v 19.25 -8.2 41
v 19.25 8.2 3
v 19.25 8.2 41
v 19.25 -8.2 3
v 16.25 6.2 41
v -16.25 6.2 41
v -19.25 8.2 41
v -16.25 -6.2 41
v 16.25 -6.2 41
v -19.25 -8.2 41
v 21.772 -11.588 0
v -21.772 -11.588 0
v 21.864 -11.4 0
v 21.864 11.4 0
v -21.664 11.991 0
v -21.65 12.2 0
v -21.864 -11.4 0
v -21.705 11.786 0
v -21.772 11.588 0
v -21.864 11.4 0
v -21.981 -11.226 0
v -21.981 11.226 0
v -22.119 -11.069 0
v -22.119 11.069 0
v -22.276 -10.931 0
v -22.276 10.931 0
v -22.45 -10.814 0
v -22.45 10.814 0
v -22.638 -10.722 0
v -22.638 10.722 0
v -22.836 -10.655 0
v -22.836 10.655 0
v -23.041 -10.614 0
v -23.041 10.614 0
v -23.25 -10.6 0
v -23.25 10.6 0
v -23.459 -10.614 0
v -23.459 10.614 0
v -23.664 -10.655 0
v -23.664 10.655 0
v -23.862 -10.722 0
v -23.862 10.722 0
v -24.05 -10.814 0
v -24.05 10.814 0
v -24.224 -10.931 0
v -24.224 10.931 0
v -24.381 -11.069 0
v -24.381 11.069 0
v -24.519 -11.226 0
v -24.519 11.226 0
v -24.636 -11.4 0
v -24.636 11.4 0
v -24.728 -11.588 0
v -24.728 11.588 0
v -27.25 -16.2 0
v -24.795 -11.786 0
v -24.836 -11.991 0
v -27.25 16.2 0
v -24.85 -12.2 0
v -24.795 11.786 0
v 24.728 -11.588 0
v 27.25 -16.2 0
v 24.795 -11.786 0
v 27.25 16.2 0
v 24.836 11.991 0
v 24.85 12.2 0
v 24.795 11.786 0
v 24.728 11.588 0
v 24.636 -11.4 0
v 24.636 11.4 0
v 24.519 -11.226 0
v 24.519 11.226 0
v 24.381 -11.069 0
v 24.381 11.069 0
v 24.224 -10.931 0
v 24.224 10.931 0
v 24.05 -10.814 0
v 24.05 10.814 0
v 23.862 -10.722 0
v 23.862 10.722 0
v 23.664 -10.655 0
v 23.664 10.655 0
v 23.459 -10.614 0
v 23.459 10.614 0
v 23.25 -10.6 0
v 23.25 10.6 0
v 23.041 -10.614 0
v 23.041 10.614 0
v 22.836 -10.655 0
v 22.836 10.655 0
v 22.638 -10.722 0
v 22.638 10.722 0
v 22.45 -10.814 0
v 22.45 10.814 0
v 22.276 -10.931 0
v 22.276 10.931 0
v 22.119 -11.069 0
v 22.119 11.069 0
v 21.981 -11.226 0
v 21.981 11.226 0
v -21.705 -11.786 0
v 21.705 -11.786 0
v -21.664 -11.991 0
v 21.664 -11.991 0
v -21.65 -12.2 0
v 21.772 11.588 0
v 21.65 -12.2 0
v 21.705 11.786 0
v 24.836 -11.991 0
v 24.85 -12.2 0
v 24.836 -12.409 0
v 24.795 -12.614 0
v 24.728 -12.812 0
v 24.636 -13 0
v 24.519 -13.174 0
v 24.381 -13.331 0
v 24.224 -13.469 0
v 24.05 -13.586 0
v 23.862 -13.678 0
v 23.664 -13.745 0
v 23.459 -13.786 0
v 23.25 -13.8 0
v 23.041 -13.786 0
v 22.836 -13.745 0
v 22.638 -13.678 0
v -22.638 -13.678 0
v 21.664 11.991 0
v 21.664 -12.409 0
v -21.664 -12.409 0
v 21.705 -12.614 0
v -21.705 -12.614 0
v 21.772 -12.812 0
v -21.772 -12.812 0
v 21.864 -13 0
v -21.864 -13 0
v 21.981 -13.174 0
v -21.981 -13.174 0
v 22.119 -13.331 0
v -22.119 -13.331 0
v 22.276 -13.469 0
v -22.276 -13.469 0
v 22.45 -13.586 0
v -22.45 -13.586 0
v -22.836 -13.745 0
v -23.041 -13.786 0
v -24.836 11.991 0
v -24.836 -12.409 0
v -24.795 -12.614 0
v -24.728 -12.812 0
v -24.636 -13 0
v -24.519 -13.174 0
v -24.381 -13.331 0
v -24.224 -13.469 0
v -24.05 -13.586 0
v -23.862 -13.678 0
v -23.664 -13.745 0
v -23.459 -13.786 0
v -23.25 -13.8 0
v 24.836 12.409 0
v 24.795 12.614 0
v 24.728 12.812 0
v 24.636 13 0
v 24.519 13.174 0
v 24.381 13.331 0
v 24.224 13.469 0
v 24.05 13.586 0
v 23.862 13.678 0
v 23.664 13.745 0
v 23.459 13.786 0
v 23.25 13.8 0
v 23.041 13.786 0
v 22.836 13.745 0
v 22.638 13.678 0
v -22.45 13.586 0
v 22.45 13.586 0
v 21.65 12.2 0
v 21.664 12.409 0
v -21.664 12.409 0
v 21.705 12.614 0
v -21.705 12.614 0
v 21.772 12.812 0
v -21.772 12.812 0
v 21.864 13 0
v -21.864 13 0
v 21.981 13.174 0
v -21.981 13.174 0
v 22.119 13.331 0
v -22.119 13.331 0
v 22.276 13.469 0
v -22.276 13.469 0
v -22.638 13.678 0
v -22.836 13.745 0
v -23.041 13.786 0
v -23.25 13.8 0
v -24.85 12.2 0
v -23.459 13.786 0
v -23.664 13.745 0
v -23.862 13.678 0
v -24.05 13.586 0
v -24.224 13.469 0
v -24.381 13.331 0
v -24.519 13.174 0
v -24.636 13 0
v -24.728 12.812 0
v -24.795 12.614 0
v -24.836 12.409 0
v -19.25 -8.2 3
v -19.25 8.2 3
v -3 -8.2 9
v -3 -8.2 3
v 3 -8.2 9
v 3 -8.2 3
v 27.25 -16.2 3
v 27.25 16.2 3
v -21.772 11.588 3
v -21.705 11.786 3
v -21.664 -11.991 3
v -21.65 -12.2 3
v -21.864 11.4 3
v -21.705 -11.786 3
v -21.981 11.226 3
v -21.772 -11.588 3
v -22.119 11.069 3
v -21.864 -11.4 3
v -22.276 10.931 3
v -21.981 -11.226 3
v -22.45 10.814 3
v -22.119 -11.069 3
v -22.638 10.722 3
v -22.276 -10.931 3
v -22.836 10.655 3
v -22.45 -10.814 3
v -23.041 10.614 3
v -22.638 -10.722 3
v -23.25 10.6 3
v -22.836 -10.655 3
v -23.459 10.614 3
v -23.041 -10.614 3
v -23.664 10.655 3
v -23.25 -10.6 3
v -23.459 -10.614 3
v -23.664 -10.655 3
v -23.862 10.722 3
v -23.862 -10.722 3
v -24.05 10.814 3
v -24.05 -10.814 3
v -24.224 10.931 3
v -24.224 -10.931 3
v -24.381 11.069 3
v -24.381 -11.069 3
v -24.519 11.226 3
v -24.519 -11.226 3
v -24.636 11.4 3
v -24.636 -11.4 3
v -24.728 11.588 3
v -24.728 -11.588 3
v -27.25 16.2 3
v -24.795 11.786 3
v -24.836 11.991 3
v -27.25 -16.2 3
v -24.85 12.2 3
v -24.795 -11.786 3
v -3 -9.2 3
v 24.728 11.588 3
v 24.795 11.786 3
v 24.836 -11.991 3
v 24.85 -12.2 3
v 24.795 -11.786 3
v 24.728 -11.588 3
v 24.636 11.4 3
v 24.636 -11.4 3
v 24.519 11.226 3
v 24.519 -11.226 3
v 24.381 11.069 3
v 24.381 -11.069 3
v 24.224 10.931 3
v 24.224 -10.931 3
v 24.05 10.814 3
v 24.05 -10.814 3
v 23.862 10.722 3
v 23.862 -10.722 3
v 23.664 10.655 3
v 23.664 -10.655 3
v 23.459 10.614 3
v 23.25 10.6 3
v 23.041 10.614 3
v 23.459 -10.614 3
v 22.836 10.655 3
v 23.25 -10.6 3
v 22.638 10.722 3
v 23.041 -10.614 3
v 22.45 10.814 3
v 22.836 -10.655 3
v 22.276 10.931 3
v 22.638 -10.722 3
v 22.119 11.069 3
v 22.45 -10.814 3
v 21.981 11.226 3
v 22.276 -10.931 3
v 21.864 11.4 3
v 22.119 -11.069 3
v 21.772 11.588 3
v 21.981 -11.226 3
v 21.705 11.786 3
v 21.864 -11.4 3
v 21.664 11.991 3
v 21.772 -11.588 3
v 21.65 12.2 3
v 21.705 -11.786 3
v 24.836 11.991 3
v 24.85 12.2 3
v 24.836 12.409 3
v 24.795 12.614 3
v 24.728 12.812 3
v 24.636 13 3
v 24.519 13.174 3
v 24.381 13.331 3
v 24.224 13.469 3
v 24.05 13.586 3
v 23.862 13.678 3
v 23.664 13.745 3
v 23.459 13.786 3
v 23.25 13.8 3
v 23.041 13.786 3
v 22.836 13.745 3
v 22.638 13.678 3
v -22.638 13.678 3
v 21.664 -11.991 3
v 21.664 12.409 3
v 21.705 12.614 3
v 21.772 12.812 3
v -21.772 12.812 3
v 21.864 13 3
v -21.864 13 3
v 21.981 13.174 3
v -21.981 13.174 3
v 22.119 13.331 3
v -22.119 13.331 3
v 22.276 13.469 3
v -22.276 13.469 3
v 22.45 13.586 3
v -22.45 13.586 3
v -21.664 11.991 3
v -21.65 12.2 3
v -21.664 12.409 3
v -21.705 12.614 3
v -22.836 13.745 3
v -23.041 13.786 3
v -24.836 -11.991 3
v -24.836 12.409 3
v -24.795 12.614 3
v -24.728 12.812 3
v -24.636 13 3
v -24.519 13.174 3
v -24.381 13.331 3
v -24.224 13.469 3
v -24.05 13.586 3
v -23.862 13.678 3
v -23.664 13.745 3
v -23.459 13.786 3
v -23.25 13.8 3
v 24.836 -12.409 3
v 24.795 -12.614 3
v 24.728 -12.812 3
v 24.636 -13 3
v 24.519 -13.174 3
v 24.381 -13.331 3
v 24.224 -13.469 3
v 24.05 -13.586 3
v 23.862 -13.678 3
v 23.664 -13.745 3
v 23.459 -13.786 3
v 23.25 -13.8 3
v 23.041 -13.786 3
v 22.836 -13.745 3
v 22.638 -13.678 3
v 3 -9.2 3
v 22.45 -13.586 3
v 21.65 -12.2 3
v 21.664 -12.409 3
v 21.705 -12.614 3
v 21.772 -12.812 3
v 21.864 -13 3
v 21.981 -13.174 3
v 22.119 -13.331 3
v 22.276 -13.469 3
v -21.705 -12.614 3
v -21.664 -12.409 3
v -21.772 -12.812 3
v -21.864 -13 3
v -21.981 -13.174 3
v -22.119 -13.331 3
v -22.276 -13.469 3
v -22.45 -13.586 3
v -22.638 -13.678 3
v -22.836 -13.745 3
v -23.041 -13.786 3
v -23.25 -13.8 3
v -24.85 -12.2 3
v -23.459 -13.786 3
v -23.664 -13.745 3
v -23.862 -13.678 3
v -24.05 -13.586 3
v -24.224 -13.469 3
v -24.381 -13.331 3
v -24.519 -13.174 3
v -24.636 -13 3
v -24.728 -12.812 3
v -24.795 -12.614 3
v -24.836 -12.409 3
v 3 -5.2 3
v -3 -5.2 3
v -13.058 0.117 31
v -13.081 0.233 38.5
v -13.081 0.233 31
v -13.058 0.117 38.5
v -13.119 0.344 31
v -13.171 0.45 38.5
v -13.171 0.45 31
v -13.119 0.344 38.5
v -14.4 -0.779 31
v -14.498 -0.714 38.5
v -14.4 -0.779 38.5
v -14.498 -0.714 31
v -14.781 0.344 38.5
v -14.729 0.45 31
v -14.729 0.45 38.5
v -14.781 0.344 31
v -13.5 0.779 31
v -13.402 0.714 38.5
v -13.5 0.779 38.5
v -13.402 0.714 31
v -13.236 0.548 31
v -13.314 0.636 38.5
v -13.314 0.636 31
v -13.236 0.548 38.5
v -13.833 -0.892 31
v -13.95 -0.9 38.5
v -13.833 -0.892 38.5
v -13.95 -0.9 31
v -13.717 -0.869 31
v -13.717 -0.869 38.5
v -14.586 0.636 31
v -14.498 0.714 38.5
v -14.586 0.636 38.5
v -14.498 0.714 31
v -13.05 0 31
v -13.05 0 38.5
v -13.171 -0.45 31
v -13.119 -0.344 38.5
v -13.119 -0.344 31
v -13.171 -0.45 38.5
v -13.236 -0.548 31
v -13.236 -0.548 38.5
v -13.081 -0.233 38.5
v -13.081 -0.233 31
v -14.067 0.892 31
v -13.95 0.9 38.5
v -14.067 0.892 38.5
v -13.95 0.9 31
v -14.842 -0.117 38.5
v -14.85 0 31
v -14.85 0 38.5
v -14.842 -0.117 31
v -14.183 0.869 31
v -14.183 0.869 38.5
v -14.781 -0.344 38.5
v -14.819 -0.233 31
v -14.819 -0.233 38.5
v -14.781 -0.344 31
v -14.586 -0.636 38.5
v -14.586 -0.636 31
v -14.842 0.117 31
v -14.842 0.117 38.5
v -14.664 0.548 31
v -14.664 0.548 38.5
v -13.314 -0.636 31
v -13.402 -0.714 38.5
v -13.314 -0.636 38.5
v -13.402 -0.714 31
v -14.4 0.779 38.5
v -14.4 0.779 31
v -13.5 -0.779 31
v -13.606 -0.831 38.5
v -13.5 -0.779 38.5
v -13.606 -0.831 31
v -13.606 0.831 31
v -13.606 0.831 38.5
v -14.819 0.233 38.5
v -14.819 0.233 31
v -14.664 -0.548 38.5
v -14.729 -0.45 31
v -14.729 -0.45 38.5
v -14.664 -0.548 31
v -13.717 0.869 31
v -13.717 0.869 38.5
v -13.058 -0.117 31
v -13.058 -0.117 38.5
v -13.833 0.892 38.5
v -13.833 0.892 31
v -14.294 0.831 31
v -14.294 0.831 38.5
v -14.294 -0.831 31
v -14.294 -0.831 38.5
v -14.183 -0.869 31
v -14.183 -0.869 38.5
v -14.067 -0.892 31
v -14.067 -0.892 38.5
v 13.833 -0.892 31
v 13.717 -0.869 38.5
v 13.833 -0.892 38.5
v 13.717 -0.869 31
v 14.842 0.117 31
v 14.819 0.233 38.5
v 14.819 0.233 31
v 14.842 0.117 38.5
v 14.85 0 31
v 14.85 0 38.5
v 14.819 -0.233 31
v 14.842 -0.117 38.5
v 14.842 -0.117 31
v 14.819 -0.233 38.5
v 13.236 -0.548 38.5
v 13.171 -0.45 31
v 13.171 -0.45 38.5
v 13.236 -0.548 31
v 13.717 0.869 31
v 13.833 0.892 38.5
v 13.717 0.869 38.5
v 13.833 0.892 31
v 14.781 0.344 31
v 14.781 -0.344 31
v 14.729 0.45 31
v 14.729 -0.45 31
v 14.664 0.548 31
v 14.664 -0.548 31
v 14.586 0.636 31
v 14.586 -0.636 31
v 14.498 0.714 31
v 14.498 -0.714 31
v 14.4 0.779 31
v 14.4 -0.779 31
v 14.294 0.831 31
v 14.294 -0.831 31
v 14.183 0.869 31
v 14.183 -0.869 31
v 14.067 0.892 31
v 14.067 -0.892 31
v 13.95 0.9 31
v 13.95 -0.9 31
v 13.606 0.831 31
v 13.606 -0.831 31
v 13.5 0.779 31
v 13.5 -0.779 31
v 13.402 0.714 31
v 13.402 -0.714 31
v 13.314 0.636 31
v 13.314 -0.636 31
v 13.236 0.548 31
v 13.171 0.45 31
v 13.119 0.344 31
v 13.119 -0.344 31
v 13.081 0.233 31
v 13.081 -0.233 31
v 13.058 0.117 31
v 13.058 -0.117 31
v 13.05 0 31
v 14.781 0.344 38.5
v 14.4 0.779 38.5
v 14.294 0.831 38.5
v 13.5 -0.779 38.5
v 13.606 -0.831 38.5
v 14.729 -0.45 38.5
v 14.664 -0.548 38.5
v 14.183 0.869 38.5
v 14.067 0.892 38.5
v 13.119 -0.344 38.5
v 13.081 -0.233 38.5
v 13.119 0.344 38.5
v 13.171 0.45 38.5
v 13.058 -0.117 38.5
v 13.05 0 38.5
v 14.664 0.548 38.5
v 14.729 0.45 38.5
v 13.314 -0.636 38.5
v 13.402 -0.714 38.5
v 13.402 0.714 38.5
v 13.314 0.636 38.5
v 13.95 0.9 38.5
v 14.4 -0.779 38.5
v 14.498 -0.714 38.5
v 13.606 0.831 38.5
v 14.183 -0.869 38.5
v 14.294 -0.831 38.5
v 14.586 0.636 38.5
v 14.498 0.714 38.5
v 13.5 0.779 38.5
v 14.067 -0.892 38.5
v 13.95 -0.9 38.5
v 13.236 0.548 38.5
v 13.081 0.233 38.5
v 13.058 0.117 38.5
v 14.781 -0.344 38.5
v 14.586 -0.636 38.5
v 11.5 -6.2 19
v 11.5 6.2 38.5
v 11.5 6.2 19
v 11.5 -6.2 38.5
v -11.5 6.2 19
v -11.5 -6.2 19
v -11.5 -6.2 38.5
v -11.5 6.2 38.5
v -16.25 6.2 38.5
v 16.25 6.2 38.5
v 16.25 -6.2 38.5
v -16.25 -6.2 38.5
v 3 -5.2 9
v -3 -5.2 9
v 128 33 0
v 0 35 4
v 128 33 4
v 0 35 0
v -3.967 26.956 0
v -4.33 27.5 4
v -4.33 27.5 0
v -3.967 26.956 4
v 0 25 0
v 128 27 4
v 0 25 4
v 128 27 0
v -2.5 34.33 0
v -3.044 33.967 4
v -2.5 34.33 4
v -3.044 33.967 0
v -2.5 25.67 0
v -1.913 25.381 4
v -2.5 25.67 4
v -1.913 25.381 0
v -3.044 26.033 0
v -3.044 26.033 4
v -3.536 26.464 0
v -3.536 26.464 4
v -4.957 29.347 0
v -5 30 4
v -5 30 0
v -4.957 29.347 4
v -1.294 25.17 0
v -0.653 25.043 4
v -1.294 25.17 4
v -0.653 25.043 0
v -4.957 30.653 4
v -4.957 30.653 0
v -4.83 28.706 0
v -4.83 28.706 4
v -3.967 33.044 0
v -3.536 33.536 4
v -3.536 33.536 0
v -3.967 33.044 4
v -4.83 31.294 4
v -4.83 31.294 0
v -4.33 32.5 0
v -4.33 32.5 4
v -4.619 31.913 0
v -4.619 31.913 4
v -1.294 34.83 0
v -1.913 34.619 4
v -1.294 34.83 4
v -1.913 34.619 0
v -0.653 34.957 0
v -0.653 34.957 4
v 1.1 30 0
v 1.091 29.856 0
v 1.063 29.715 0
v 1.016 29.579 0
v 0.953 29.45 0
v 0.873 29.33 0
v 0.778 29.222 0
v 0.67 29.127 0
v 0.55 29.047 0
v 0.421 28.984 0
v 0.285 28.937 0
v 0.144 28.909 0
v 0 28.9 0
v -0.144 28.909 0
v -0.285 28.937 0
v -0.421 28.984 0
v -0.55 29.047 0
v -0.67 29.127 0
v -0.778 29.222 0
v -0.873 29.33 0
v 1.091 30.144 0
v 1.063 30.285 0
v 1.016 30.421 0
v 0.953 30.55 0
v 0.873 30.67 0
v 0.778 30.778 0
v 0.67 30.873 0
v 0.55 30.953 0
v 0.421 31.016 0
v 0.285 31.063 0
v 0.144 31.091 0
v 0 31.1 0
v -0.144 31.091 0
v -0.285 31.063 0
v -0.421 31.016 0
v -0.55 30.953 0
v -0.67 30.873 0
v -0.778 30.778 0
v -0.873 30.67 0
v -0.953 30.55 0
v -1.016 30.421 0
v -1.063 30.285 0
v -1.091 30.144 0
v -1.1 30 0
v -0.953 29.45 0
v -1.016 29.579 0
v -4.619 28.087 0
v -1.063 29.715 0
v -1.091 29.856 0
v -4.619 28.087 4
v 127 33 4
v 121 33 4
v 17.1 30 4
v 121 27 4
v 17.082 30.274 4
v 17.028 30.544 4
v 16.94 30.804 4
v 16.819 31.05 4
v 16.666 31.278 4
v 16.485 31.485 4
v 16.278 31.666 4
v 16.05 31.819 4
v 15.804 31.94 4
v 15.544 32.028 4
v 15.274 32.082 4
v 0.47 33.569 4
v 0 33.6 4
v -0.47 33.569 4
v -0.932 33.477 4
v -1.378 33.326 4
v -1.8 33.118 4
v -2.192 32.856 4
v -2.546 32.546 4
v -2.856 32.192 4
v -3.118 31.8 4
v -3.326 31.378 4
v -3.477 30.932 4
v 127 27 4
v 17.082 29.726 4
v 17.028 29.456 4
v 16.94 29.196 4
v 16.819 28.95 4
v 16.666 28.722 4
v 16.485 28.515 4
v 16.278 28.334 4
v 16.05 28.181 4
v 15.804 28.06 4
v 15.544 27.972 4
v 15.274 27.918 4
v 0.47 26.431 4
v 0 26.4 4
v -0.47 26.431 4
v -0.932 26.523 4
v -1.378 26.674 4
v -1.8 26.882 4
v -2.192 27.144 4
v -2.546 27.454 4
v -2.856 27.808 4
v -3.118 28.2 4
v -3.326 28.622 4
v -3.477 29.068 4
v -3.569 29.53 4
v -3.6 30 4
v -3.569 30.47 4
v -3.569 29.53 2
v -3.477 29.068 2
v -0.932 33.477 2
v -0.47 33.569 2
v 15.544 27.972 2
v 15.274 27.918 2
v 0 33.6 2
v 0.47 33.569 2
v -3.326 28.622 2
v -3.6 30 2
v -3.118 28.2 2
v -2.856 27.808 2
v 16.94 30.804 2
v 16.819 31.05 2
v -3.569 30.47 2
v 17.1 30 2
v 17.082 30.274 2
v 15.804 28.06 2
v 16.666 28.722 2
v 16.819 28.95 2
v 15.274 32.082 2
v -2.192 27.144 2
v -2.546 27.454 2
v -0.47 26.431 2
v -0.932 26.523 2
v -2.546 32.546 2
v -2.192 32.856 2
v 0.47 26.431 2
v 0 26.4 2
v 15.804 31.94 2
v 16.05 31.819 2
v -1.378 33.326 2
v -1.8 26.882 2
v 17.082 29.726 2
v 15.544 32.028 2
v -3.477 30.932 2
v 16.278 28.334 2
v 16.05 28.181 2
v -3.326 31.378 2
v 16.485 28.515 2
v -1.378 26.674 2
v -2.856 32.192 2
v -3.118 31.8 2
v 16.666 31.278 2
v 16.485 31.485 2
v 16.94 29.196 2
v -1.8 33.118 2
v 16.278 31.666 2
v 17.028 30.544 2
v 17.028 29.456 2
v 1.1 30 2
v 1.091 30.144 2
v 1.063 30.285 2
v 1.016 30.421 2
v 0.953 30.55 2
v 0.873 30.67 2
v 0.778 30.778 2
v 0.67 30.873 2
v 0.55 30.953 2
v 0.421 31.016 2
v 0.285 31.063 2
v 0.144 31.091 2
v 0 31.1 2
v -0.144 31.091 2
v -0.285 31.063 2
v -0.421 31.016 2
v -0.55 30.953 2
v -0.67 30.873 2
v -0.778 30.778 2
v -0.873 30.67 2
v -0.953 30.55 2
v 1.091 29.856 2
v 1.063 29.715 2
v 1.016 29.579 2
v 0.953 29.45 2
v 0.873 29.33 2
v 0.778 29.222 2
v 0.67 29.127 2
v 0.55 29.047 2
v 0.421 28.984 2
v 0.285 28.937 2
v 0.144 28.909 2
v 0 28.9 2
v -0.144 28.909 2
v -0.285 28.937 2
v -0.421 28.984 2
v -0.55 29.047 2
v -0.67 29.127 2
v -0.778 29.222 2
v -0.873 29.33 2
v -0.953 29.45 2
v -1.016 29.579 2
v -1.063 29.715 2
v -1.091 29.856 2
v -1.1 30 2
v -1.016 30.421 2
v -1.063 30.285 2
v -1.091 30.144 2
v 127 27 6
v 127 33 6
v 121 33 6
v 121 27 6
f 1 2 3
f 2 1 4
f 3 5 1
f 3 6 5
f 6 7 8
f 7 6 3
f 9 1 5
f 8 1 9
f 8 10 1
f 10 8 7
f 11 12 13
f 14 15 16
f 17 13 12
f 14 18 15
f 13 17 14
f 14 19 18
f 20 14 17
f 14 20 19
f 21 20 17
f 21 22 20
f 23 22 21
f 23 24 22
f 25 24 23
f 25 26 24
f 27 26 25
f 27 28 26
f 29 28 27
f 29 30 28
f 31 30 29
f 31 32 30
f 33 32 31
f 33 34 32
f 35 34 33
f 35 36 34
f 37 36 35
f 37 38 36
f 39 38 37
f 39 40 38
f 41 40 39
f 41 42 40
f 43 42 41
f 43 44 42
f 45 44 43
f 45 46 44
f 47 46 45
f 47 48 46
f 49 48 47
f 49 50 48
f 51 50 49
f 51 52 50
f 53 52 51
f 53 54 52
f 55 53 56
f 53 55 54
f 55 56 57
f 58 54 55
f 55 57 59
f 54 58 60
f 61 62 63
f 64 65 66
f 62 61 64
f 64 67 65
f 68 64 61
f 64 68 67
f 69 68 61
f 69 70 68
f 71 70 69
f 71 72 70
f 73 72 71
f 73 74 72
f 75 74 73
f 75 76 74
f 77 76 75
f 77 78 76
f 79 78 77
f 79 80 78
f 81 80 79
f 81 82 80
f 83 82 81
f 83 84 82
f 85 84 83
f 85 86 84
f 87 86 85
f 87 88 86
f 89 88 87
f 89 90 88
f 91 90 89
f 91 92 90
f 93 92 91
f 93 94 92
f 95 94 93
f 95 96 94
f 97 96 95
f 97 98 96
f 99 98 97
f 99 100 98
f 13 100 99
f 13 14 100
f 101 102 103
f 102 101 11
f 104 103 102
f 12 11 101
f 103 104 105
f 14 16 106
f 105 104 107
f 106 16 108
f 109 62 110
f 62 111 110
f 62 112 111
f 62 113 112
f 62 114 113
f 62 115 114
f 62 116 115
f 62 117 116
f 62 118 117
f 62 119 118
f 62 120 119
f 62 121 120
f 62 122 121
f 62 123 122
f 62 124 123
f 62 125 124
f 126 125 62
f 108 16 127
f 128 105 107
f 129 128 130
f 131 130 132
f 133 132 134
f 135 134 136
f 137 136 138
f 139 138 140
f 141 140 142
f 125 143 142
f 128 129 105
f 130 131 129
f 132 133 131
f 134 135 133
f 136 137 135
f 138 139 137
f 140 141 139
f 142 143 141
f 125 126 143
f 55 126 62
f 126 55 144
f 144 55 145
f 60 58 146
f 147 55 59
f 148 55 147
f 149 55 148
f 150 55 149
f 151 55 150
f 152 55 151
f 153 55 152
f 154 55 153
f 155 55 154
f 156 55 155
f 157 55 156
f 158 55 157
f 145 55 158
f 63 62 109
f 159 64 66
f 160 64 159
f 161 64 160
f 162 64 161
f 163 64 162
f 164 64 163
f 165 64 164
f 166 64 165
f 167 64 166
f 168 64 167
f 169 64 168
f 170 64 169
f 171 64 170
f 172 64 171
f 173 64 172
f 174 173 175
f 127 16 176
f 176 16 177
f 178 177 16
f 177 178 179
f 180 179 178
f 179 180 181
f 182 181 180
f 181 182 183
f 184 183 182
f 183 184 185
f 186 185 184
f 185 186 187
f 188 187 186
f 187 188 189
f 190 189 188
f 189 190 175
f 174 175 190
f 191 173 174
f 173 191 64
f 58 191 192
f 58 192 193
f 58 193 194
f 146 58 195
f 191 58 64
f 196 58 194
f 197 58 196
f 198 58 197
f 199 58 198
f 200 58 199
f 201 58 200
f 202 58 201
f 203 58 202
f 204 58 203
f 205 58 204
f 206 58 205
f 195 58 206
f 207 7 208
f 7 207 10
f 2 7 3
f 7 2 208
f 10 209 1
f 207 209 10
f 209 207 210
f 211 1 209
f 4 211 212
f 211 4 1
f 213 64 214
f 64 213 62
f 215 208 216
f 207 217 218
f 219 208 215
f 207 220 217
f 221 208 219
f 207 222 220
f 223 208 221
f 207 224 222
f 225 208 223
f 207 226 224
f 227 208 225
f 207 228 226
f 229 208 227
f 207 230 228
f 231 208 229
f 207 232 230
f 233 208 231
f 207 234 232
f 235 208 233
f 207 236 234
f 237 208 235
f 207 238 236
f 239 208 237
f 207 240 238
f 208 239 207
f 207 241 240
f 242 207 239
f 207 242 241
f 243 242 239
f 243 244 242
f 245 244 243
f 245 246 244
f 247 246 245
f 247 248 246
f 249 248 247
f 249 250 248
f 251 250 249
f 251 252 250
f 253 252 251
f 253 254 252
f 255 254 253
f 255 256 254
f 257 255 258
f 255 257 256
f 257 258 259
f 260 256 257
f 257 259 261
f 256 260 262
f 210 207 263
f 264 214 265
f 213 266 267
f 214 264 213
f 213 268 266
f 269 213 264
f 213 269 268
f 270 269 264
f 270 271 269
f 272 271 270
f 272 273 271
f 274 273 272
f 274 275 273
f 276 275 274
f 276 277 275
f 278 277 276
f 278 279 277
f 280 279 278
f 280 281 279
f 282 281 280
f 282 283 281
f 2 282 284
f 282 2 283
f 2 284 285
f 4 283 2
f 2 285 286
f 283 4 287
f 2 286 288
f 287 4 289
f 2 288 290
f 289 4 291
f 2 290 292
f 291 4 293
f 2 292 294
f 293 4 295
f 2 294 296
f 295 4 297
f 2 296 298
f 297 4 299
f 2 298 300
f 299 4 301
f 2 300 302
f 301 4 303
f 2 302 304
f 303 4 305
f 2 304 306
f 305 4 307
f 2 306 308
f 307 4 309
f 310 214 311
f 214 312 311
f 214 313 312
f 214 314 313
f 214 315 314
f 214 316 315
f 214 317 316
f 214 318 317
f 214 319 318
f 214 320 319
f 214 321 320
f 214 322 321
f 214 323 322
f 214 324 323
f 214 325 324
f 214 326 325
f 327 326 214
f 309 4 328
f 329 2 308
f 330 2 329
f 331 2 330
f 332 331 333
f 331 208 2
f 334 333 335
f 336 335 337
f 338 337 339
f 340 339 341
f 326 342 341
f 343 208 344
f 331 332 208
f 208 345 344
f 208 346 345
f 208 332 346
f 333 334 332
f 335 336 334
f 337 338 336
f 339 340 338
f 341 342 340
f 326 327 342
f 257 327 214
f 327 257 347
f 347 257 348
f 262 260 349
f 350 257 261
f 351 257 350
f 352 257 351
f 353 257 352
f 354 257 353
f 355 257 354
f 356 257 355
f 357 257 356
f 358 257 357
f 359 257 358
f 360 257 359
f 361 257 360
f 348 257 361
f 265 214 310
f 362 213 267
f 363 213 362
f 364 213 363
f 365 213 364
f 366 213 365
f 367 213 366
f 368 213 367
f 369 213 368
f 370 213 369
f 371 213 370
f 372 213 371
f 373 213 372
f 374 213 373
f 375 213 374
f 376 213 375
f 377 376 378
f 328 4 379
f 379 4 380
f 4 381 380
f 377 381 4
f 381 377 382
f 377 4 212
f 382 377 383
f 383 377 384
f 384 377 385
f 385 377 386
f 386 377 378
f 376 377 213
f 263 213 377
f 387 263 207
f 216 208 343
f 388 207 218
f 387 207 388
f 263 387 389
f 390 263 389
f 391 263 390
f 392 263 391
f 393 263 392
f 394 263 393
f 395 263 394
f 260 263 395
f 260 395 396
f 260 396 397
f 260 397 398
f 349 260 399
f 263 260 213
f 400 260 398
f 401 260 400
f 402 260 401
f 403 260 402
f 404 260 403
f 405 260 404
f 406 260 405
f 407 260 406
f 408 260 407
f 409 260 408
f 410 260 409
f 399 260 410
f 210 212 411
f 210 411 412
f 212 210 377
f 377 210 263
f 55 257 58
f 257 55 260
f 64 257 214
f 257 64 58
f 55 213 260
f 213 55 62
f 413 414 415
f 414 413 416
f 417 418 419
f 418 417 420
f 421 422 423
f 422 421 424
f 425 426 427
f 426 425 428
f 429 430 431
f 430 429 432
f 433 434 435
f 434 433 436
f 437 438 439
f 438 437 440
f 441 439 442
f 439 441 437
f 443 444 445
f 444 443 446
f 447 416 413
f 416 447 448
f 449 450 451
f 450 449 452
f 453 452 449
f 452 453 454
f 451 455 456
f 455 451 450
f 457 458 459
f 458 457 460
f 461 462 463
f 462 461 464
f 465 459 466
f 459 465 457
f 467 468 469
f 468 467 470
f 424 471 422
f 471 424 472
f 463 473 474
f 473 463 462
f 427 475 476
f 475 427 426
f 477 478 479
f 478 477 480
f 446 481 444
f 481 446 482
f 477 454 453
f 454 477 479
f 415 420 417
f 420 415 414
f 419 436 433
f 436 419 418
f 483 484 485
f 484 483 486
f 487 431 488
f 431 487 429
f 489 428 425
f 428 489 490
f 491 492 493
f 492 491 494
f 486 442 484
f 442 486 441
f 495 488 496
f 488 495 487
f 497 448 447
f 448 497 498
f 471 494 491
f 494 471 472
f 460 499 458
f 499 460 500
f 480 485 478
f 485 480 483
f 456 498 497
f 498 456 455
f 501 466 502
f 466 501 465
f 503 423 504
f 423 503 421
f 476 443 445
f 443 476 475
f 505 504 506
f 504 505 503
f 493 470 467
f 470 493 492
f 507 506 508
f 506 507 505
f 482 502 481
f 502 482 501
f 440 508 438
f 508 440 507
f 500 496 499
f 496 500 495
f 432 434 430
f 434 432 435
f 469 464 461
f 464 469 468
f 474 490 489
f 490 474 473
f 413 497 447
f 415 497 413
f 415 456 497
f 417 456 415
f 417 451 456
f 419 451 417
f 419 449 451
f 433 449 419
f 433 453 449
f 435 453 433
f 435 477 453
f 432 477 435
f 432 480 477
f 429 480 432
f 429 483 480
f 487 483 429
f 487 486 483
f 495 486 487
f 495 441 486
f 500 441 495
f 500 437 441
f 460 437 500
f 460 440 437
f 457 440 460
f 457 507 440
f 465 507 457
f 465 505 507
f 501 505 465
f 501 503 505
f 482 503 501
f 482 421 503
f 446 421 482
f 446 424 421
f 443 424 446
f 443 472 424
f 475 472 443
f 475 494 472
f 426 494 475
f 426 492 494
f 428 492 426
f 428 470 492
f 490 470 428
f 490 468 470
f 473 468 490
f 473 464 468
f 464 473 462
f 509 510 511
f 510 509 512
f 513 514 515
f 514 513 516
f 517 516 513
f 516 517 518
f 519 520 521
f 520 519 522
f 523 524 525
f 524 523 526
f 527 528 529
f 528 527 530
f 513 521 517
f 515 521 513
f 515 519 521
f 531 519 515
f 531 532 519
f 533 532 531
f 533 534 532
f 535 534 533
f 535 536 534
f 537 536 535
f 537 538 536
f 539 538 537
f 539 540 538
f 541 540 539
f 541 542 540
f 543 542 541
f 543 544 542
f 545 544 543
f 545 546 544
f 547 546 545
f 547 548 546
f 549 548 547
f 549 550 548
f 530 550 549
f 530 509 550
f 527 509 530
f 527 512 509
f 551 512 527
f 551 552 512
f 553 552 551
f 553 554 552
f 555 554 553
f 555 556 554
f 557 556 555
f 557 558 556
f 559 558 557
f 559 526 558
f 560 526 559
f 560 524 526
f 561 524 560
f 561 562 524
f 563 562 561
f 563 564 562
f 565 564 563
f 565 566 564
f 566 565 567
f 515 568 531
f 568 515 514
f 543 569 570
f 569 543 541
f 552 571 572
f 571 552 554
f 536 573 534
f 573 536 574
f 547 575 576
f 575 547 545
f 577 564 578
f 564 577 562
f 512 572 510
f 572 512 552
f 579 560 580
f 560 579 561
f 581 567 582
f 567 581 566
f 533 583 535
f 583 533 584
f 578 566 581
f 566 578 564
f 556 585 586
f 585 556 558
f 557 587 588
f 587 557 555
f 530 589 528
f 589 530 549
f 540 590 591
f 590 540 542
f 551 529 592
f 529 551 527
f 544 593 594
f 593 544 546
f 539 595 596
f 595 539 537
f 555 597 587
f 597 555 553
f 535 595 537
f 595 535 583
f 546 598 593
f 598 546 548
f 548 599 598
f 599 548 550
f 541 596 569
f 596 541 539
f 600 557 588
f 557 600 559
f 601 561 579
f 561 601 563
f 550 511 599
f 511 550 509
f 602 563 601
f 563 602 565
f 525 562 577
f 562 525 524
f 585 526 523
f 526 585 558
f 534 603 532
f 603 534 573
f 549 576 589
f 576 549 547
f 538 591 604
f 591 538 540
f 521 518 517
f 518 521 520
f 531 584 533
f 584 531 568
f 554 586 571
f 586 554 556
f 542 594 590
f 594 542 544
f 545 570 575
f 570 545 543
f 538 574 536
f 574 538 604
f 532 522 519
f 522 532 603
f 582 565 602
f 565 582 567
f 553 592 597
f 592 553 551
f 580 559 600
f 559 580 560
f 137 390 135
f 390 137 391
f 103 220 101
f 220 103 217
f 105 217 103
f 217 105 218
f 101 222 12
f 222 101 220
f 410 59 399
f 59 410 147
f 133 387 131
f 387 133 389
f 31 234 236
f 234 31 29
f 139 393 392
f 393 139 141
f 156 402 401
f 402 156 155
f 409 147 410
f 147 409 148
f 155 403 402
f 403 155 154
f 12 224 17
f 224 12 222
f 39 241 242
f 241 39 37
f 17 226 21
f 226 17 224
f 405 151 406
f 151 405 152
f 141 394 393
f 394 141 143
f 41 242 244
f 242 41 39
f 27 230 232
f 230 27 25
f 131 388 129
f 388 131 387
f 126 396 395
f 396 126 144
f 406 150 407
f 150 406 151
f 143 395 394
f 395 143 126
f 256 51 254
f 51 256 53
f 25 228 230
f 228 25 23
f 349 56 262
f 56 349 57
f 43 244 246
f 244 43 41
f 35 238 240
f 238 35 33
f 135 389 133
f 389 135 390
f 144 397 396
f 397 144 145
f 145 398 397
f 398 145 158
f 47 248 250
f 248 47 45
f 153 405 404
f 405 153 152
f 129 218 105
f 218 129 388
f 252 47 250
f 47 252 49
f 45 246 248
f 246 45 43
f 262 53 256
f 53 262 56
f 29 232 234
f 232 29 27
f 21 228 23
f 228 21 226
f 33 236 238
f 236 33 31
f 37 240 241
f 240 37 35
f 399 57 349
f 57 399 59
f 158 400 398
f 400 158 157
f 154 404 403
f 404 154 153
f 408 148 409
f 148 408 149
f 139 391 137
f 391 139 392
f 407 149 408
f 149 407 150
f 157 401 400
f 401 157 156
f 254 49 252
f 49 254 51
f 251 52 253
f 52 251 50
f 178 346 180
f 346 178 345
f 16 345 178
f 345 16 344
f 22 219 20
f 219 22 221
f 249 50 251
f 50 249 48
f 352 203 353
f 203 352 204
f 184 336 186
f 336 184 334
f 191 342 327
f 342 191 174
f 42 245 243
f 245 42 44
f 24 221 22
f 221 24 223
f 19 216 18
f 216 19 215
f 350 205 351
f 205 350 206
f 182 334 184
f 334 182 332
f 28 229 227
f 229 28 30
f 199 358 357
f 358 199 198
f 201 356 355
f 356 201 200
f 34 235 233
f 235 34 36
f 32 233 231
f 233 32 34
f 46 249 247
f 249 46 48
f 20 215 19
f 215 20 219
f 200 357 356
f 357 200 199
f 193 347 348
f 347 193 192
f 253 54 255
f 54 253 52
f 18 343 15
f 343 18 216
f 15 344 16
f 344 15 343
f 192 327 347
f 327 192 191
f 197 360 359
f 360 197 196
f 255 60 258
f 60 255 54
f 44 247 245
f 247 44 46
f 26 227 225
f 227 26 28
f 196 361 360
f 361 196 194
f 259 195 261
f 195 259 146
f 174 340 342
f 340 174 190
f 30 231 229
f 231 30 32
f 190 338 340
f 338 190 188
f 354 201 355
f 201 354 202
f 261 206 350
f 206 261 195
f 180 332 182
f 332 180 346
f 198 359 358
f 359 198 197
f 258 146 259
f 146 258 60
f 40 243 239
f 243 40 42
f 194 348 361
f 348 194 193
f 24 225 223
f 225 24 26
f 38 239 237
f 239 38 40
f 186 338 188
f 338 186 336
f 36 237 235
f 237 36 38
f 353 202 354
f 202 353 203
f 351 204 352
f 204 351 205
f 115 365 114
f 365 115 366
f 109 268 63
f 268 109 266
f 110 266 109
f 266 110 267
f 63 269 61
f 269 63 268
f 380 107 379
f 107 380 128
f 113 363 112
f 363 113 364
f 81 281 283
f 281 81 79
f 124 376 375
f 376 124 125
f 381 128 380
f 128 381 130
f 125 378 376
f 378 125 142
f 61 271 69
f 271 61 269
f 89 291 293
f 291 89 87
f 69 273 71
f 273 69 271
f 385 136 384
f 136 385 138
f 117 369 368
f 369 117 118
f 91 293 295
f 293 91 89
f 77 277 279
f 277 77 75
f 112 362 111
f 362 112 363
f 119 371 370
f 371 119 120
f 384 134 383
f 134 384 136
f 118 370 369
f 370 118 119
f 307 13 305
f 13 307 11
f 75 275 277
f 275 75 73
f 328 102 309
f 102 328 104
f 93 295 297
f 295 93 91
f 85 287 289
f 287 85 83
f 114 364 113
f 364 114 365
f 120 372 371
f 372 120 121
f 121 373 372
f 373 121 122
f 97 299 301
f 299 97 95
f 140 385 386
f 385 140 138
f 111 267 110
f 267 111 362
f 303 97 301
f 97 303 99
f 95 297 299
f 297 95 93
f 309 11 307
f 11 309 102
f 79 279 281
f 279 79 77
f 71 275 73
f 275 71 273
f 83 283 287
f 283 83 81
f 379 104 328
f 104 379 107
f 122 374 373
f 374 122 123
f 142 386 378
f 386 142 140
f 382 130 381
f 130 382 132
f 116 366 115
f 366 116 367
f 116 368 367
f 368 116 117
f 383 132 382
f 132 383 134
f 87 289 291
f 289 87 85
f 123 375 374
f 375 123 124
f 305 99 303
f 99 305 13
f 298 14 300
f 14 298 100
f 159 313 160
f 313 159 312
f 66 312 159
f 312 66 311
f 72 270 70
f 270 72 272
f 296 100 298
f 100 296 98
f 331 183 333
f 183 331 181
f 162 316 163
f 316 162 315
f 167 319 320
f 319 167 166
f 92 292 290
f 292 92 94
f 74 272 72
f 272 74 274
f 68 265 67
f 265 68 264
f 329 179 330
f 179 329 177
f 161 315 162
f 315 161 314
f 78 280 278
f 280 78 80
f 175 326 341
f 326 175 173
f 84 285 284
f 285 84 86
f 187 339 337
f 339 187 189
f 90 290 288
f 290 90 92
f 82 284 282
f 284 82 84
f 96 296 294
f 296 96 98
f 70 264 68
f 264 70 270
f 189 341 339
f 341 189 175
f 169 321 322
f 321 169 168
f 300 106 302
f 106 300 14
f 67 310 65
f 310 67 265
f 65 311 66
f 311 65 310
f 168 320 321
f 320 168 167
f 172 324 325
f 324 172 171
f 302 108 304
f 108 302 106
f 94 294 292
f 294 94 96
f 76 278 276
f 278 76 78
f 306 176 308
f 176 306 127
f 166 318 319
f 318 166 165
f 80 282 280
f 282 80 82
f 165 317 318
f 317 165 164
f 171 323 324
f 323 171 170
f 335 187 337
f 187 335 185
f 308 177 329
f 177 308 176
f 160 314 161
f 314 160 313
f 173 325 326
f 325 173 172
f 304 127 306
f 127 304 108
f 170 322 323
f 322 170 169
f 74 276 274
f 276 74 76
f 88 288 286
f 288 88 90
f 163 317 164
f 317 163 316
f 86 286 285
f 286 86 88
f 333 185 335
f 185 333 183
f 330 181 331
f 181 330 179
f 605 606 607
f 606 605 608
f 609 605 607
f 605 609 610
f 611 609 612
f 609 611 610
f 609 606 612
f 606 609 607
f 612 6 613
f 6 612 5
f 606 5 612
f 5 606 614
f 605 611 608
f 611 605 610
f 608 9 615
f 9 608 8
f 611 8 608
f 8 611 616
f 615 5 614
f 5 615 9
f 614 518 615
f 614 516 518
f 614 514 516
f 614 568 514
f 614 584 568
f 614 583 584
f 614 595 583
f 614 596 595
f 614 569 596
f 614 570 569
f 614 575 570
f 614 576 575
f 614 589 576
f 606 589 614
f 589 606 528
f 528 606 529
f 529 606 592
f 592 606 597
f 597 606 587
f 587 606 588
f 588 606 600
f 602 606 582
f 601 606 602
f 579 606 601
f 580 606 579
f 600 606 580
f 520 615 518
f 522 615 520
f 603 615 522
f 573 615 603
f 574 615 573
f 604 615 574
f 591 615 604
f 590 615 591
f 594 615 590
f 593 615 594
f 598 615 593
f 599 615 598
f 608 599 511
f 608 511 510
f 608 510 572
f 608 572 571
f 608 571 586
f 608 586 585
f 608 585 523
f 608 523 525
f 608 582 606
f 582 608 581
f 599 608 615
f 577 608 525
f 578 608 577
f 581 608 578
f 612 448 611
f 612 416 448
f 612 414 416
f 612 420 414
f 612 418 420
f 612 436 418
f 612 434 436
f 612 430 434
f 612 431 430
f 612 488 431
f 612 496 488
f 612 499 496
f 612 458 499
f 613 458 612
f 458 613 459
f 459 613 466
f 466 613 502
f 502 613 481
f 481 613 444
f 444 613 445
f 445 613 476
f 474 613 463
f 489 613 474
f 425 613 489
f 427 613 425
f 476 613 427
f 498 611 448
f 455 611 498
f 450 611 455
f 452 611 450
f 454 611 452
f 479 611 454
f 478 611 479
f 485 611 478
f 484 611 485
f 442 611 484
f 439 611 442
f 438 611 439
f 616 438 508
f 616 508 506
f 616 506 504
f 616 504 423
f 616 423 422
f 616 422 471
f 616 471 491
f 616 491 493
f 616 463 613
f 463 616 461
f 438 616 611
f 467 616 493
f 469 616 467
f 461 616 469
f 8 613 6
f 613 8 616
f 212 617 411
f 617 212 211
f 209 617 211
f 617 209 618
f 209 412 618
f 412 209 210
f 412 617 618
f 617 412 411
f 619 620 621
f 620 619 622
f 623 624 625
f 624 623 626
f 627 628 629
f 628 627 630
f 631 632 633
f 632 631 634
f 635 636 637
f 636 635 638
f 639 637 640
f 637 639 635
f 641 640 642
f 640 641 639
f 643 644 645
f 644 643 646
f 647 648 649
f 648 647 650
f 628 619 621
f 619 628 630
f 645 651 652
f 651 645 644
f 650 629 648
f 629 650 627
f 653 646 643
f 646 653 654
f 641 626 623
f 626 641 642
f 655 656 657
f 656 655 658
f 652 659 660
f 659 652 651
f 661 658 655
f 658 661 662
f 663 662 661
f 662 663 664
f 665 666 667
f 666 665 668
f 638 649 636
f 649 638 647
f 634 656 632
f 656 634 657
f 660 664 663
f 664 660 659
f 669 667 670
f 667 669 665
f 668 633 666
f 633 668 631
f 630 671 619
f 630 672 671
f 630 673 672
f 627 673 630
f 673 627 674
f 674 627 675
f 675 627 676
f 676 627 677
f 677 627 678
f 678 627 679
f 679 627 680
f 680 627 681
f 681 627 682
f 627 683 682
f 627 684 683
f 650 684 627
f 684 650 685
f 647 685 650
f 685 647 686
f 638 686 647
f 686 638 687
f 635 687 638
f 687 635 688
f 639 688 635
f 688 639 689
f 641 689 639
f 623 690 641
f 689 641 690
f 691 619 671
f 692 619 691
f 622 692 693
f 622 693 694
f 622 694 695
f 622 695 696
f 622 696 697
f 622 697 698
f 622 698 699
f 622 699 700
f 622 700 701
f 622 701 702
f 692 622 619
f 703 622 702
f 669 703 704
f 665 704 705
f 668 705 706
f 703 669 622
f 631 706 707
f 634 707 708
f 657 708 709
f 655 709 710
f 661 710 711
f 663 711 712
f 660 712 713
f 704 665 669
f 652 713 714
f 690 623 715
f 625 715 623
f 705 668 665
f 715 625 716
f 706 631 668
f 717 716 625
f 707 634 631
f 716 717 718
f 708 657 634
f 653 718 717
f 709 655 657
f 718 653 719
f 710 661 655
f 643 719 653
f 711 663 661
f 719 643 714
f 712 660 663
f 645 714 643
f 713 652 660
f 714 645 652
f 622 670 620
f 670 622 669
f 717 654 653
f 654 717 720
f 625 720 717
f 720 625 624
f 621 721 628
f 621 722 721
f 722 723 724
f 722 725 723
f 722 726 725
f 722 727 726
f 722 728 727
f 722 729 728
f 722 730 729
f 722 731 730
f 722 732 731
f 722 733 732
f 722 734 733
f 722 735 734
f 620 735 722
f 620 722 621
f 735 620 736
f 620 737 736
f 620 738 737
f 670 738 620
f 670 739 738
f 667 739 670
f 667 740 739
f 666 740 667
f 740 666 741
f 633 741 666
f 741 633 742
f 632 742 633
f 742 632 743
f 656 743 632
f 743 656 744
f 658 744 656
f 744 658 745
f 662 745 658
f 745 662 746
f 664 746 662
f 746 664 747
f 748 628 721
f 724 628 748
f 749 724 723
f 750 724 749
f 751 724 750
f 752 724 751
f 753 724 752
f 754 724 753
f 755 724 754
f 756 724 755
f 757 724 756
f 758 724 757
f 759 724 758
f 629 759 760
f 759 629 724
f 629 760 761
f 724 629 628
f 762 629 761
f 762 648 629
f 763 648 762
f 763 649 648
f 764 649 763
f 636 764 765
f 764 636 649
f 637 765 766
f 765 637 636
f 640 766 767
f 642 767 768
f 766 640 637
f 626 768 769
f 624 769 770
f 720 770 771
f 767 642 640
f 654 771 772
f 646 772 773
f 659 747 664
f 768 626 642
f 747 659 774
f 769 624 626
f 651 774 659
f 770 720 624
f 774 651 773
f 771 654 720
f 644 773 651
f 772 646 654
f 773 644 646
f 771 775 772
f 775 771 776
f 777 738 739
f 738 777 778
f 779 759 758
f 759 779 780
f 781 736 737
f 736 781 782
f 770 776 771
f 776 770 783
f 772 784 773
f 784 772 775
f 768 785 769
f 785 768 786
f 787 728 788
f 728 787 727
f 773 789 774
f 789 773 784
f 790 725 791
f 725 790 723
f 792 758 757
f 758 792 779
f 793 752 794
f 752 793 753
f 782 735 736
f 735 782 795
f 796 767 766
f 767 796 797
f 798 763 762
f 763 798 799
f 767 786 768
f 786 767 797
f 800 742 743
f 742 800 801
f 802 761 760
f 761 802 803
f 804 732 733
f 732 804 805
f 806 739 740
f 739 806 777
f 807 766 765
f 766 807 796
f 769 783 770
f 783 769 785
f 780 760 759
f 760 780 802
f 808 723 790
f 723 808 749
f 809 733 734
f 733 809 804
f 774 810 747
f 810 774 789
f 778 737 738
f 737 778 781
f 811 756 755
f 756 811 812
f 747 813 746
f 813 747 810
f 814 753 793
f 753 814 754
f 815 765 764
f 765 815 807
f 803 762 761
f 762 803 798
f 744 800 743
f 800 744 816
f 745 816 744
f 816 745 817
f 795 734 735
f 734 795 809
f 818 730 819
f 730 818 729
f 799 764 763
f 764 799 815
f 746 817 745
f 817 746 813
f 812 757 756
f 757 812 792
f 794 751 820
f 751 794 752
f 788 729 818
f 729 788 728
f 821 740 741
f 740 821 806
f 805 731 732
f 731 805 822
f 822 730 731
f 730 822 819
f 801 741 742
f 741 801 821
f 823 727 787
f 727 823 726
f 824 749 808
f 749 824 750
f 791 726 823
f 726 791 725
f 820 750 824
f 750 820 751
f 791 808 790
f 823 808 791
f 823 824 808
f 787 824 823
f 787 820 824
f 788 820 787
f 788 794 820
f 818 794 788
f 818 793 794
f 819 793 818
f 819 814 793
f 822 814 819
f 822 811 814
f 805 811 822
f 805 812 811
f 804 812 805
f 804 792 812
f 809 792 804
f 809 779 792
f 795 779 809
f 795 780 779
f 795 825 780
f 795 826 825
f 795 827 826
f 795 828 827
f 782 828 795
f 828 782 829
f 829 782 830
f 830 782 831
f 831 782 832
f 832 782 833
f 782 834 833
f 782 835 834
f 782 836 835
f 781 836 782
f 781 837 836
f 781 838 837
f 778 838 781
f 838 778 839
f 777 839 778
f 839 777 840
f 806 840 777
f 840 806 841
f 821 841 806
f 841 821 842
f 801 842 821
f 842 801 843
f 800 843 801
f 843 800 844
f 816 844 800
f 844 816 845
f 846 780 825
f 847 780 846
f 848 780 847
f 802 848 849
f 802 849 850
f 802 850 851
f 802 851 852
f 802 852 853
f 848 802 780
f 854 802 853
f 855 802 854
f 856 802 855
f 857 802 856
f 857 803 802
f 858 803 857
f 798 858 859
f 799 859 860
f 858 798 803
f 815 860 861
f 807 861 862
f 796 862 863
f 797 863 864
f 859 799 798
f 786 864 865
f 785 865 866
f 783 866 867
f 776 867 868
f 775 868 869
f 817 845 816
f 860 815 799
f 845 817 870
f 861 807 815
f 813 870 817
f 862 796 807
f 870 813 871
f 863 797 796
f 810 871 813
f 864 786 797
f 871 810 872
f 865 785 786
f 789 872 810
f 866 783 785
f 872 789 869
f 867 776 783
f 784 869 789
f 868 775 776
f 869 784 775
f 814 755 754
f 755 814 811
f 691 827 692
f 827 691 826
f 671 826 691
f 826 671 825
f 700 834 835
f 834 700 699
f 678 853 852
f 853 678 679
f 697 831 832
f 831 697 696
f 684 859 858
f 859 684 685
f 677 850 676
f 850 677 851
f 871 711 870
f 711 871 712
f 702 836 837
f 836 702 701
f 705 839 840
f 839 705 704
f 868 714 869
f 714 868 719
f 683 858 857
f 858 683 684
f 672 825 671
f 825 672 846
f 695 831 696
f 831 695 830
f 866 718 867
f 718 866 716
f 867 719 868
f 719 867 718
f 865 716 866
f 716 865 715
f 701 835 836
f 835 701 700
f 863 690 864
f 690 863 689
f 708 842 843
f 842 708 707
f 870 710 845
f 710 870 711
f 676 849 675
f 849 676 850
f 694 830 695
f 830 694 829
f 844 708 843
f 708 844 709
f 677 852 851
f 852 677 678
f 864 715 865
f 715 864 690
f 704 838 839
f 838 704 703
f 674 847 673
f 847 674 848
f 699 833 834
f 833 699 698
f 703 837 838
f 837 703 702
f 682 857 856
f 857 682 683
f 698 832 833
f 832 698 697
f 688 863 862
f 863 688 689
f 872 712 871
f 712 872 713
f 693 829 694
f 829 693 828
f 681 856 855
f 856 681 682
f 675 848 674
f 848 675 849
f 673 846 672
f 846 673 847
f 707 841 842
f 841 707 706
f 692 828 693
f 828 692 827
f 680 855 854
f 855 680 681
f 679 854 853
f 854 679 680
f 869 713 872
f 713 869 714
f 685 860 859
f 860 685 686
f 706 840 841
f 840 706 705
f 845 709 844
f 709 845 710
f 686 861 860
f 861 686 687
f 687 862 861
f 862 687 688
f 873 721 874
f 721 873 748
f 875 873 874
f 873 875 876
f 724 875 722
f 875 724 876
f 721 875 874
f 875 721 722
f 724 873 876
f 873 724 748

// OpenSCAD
// Barrier post for an SG90 micro servo + barrier arm (IoT Garage)
// Print: PLA, 0.2 mm layers, 20 % infill, no supports (post upright, arm flat).
// Arm lower edge ends up ~50 mm above the floor (see alati/kamera_kalkulator.py).
part = "all";          // "post" | "arm" | "all"
lane_width = 133;      // from nacrt/dimenzije.md
arm_height = 50;       // floor -> lower edge of the arm
wall = 2;
$fn = 48;

// SG90 body 22.8 x 12.2 x 22.5 mm, tabs 32.3 mm wide, shaft offset 5.9 mm from one end
sg_l = 23.0; sg_w = 12.4; sg_tabs = 32.5; tab_t = 2.5;
post_w = sg_w + 2 * wall; post_l = sg_tabs + 6;
post_h = arm_height - 9;   // horn + arm sit on top of the servo shaft

module post() {
    difference() {
        union() {
            translate([-post_l / 2, -post_w / 2, 0]) cube([post_l, post_w, post_h]);
            translate([-post_l / 2 - 8, -post_w / 2 - 8, 0]) cube([post_l + 16, post_w + 16, 3]); // foot
        }
        // servo pocket (servo pushed in from the top, tabs rest on the rim)
        translate([-sg_l / 2, -sg_w / 2, post_h - 22]) cube([sg_l, sg_w, 30]);
        translate([-sg_tabs / 2, -sg_w / 2, post_h - tab_t]) cube([sg_tabs, sg_w, 10]);
        // screw holes for the tabs
        for (x = [-sg_tabs / 2 + 2.3, sg_tabs / 2 - 2.3]) translate([x, 0, post_h - 10]) cylinder(d = 1.8, h = 12);
        // cable exit at the bottom
        translate([-3, -post_w / 2 - 1, 3]) cube([6, wall + 2, 6]);
        // foot screw holes
        for (x = [-post_l / 2 - 4, post_l / 2 + 4]) for (y = [-post_w / 2 - 4, post_w / 2 + 4])
            translate([x, y, -1]) cylinder(d = 3.2, h = 5);
    }
}

module arm() {
    len = lane_width - 6;
    difference() {
        union() {
            hull() {
                cylinder(d = 10, h = 4);
                translate([len, -3, 0]) cube([1, 6, 4]);
            }
        }
        // pocket for the single-arm servo horn (glue or screw it in)
        hull() { translate([0, 0, 2]) cylinder(d = 7.2, h = 3); translate([15, 0, 2]) cylinder(d = 4.2, h = 3); }
        translate([0, 0, -1]) cylinder(d = 2.2, h = 6);      // horn screw
    }
    // red stripes are painted / taped on later; small tip weight block
    translate([len - 6, -3, 4]) cube([6, 6, 2]);
}

if (part == "post" || part == "all") post();
if (part == "arm" || part == "all") translate([0, 30, 0]) arm();
